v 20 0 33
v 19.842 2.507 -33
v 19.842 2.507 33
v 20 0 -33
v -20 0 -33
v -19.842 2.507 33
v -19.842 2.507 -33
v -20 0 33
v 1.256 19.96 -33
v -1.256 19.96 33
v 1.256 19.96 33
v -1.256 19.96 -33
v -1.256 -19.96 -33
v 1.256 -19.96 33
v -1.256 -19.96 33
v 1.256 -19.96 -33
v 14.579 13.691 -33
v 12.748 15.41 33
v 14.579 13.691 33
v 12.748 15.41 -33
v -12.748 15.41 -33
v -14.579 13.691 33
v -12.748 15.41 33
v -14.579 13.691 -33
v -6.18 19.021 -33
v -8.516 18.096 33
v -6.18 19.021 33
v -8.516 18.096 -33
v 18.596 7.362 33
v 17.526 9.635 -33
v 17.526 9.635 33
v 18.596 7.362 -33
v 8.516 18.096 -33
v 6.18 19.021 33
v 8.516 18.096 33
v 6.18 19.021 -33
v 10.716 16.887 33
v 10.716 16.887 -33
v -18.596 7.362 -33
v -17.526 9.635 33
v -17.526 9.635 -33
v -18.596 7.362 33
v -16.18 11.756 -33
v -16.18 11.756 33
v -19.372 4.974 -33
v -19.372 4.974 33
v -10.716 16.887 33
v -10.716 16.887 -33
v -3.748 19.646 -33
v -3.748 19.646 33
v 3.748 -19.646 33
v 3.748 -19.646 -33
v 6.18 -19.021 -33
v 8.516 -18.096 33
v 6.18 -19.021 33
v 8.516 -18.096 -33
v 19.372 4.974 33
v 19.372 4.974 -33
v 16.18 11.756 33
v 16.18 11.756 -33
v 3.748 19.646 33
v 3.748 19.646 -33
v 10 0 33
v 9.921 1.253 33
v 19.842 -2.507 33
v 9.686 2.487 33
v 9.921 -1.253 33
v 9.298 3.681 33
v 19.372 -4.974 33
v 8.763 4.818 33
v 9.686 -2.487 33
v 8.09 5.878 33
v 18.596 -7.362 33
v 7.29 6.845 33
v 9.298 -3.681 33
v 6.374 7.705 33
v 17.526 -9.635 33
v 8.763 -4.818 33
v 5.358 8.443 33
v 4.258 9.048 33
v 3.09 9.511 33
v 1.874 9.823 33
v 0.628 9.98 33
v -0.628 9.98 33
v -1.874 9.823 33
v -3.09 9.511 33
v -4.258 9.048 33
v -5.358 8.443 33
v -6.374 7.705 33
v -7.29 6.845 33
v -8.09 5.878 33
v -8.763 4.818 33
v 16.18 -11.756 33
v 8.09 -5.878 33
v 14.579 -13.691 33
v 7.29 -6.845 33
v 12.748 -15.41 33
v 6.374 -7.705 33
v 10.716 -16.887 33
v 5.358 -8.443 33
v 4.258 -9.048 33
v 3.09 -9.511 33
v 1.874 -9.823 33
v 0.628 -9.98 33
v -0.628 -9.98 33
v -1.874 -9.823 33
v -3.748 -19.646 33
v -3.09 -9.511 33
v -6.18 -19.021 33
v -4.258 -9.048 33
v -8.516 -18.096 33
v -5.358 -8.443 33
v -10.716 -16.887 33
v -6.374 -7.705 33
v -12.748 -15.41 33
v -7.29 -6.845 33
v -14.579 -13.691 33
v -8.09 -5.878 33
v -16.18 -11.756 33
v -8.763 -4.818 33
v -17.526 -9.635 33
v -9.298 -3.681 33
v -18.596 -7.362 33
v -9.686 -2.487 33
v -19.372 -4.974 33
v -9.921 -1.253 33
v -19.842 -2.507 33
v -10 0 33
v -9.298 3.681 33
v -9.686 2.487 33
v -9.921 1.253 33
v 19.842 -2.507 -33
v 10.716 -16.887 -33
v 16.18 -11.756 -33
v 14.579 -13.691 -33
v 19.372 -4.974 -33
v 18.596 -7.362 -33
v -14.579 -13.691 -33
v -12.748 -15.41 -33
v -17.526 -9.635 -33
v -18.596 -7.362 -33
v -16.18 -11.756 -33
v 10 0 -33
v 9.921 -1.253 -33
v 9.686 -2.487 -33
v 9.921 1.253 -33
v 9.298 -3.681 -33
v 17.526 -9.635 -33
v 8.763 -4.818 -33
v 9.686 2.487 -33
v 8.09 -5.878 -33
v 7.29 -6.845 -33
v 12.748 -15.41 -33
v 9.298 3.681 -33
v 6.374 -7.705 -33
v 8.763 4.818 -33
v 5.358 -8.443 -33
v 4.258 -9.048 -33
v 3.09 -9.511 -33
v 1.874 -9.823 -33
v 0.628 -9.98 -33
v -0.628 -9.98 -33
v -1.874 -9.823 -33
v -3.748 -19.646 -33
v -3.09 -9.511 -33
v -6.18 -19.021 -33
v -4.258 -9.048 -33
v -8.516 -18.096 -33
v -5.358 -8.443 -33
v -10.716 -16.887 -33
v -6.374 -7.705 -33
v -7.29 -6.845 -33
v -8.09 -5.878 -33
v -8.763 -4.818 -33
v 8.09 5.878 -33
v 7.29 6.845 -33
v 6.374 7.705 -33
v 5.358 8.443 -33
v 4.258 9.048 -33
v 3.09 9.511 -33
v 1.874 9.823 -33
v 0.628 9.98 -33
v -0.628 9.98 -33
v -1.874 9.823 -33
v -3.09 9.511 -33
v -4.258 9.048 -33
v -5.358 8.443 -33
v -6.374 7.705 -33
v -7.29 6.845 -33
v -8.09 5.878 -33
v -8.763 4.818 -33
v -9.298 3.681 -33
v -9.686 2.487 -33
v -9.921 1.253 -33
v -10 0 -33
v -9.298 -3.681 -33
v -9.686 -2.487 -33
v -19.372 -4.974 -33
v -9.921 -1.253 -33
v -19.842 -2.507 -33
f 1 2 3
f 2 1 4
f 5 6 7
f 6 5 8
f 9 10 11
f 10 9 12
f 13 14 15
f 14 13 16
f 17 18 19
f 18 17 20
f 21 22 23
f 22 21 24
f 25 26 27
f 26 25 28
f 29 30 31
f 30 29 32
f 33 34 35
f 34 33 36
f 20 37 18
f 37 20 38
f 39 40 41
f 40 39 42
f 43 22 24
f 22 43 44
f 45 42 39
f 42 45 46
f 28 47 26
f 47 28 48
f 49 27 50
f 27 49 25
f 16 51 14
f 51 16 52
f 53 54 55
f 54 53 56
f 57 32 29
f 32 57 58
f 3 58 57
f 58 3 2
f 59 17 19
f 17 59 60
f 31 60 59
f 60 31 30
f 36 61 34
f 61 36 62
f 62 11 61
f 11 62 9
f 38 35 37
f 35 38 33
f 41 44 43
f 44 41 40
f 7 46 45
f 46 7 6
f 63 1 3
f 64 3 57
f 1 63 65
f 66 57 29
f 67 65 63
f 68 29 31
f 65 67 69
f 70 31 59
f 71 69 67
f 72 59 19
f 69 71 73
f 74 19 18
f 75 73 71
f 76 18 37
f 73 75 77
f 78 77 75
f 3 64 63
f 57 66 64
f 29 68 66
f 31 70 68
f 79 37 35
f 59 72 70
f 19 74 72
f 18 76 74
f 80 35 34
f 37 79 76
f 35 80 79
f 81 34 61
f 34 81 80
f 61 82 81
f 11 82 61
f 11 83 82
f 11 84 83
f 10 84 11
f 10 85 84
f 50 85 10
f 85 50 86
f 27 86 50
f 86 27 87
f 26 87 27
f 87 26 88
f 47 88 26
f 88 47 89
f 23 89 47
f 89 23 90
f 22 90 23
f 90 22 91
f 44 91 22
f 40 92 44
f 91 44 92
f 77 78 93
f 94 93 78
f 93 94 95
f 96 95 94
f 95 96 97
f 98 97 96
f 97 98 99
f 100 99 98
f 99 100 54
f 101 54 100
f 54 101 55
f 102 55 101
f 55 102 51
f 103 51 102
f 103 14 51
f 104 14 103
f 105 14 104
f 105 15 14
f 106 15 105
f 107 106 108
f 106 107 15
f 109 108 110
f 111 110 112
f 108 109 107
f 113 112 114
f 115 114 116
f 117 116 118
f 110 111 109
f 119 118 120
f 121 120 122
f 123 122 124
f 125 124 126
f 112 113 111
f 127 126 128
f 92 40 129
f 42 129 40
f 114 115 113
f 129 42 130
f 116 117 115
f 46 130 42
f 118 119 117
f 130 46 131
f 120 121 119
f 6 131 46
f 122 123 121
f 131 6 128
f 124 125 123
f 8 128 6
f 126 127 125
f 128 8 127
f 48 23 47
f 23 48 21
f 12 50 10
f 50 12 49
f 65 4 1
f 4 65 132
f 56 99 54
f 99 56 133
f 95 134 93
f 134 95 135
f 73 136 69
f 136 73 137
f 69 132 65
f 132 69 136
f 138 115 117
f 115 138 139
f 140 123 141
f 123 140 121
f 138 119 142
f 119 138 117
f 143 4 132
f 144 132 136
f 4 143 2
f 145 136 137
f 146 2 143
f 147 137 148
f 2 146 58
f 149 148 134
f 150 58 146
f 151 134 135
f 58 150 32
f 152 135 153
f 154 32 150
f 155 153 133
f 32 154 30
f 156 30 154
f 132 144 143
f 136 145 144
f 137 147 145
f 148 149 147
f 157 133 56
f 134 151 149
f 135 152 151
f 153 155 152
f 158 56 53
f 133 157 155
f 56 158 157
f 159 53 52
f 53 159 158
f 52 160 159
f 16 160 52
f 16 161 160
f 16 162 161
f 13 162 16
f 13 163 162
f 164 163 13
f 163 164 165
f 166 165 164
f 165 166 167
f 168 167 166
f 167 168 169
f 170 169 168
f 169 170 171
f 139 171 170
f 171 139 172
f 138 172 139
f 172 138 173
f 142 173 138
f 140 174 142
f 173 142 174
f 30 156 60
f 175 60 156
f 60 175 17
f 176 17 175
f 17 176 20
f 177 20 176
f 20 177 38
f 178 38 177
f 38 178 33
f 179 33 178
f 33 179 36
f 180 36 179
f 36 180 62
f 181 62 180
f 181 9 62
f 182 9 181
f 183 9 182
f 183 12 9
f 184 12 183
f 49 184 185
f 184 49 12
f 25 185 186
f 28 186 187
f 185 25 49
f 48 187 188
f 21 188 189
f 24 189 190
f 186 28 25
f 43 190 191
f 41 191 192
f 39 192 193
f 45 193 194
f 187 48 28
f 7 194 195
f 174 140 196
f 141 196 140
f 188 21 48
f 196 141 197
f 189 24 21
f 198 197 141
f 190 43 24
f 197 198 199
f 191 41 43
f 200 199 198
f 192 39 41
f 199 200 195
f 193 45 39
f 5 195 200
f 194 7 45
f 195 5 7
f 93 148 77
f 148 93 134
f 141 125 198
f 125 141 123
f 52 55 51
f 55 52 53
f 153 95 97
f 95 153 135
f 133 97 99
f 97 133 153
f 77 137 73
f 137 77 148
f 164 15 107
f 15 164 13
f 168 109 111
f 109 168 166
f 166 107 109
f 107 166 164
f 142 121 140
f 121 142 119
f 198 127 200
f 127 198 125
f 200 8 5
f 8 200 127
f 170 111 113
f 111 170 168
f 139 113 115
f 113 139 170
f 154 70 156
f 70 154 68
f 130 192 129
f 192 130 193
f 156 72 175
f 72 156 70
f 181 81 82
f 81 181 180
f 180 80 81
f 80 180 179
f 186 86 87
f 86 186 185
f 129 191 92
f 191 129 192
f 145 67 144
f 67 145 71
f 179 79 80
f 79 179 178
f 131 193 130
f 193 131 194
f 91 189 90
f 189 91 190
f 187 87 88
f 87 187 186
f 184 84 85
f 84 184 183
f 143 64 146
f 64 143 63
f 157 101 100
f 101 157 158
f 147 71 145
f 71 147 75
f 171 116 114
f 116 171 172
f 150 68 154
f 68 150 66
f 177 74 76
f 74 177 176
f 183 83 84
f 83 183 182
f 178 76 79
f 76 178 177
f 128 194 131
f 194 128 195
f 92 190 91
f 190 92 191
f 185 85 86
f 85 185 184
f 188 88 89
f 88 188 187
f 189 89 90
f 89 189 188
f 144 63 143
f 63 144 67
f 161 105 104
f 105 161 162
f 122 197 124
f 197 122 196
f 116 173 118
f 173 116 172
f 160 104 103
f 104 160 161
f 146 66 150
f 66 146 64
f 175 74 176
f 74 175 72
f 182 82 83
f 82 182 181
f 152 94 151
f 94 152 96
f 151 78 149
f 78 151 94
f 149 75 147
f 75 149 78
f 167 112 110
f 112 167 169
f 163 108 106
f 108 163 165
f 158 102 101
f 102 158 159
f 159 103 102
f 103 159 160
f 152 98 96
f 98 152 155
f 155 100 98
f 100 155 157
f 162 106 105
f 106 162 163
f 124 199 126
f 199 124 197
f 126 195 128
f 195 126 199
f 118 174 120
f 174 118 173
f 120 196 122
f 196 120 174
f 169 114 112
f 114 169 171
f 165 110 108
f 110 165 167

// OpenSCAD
$fn = 50;


difference() {
	union() {
		translate(v = [0, 0, -33.0000000000]) {
			cylinder(h = 66, r = 20.0000000000);
		}
	}
	union() {
		translate(v = [0, 0, -100.0000000000]) {
			cylinder(h = 200, r = 10);
		}
	}
}
